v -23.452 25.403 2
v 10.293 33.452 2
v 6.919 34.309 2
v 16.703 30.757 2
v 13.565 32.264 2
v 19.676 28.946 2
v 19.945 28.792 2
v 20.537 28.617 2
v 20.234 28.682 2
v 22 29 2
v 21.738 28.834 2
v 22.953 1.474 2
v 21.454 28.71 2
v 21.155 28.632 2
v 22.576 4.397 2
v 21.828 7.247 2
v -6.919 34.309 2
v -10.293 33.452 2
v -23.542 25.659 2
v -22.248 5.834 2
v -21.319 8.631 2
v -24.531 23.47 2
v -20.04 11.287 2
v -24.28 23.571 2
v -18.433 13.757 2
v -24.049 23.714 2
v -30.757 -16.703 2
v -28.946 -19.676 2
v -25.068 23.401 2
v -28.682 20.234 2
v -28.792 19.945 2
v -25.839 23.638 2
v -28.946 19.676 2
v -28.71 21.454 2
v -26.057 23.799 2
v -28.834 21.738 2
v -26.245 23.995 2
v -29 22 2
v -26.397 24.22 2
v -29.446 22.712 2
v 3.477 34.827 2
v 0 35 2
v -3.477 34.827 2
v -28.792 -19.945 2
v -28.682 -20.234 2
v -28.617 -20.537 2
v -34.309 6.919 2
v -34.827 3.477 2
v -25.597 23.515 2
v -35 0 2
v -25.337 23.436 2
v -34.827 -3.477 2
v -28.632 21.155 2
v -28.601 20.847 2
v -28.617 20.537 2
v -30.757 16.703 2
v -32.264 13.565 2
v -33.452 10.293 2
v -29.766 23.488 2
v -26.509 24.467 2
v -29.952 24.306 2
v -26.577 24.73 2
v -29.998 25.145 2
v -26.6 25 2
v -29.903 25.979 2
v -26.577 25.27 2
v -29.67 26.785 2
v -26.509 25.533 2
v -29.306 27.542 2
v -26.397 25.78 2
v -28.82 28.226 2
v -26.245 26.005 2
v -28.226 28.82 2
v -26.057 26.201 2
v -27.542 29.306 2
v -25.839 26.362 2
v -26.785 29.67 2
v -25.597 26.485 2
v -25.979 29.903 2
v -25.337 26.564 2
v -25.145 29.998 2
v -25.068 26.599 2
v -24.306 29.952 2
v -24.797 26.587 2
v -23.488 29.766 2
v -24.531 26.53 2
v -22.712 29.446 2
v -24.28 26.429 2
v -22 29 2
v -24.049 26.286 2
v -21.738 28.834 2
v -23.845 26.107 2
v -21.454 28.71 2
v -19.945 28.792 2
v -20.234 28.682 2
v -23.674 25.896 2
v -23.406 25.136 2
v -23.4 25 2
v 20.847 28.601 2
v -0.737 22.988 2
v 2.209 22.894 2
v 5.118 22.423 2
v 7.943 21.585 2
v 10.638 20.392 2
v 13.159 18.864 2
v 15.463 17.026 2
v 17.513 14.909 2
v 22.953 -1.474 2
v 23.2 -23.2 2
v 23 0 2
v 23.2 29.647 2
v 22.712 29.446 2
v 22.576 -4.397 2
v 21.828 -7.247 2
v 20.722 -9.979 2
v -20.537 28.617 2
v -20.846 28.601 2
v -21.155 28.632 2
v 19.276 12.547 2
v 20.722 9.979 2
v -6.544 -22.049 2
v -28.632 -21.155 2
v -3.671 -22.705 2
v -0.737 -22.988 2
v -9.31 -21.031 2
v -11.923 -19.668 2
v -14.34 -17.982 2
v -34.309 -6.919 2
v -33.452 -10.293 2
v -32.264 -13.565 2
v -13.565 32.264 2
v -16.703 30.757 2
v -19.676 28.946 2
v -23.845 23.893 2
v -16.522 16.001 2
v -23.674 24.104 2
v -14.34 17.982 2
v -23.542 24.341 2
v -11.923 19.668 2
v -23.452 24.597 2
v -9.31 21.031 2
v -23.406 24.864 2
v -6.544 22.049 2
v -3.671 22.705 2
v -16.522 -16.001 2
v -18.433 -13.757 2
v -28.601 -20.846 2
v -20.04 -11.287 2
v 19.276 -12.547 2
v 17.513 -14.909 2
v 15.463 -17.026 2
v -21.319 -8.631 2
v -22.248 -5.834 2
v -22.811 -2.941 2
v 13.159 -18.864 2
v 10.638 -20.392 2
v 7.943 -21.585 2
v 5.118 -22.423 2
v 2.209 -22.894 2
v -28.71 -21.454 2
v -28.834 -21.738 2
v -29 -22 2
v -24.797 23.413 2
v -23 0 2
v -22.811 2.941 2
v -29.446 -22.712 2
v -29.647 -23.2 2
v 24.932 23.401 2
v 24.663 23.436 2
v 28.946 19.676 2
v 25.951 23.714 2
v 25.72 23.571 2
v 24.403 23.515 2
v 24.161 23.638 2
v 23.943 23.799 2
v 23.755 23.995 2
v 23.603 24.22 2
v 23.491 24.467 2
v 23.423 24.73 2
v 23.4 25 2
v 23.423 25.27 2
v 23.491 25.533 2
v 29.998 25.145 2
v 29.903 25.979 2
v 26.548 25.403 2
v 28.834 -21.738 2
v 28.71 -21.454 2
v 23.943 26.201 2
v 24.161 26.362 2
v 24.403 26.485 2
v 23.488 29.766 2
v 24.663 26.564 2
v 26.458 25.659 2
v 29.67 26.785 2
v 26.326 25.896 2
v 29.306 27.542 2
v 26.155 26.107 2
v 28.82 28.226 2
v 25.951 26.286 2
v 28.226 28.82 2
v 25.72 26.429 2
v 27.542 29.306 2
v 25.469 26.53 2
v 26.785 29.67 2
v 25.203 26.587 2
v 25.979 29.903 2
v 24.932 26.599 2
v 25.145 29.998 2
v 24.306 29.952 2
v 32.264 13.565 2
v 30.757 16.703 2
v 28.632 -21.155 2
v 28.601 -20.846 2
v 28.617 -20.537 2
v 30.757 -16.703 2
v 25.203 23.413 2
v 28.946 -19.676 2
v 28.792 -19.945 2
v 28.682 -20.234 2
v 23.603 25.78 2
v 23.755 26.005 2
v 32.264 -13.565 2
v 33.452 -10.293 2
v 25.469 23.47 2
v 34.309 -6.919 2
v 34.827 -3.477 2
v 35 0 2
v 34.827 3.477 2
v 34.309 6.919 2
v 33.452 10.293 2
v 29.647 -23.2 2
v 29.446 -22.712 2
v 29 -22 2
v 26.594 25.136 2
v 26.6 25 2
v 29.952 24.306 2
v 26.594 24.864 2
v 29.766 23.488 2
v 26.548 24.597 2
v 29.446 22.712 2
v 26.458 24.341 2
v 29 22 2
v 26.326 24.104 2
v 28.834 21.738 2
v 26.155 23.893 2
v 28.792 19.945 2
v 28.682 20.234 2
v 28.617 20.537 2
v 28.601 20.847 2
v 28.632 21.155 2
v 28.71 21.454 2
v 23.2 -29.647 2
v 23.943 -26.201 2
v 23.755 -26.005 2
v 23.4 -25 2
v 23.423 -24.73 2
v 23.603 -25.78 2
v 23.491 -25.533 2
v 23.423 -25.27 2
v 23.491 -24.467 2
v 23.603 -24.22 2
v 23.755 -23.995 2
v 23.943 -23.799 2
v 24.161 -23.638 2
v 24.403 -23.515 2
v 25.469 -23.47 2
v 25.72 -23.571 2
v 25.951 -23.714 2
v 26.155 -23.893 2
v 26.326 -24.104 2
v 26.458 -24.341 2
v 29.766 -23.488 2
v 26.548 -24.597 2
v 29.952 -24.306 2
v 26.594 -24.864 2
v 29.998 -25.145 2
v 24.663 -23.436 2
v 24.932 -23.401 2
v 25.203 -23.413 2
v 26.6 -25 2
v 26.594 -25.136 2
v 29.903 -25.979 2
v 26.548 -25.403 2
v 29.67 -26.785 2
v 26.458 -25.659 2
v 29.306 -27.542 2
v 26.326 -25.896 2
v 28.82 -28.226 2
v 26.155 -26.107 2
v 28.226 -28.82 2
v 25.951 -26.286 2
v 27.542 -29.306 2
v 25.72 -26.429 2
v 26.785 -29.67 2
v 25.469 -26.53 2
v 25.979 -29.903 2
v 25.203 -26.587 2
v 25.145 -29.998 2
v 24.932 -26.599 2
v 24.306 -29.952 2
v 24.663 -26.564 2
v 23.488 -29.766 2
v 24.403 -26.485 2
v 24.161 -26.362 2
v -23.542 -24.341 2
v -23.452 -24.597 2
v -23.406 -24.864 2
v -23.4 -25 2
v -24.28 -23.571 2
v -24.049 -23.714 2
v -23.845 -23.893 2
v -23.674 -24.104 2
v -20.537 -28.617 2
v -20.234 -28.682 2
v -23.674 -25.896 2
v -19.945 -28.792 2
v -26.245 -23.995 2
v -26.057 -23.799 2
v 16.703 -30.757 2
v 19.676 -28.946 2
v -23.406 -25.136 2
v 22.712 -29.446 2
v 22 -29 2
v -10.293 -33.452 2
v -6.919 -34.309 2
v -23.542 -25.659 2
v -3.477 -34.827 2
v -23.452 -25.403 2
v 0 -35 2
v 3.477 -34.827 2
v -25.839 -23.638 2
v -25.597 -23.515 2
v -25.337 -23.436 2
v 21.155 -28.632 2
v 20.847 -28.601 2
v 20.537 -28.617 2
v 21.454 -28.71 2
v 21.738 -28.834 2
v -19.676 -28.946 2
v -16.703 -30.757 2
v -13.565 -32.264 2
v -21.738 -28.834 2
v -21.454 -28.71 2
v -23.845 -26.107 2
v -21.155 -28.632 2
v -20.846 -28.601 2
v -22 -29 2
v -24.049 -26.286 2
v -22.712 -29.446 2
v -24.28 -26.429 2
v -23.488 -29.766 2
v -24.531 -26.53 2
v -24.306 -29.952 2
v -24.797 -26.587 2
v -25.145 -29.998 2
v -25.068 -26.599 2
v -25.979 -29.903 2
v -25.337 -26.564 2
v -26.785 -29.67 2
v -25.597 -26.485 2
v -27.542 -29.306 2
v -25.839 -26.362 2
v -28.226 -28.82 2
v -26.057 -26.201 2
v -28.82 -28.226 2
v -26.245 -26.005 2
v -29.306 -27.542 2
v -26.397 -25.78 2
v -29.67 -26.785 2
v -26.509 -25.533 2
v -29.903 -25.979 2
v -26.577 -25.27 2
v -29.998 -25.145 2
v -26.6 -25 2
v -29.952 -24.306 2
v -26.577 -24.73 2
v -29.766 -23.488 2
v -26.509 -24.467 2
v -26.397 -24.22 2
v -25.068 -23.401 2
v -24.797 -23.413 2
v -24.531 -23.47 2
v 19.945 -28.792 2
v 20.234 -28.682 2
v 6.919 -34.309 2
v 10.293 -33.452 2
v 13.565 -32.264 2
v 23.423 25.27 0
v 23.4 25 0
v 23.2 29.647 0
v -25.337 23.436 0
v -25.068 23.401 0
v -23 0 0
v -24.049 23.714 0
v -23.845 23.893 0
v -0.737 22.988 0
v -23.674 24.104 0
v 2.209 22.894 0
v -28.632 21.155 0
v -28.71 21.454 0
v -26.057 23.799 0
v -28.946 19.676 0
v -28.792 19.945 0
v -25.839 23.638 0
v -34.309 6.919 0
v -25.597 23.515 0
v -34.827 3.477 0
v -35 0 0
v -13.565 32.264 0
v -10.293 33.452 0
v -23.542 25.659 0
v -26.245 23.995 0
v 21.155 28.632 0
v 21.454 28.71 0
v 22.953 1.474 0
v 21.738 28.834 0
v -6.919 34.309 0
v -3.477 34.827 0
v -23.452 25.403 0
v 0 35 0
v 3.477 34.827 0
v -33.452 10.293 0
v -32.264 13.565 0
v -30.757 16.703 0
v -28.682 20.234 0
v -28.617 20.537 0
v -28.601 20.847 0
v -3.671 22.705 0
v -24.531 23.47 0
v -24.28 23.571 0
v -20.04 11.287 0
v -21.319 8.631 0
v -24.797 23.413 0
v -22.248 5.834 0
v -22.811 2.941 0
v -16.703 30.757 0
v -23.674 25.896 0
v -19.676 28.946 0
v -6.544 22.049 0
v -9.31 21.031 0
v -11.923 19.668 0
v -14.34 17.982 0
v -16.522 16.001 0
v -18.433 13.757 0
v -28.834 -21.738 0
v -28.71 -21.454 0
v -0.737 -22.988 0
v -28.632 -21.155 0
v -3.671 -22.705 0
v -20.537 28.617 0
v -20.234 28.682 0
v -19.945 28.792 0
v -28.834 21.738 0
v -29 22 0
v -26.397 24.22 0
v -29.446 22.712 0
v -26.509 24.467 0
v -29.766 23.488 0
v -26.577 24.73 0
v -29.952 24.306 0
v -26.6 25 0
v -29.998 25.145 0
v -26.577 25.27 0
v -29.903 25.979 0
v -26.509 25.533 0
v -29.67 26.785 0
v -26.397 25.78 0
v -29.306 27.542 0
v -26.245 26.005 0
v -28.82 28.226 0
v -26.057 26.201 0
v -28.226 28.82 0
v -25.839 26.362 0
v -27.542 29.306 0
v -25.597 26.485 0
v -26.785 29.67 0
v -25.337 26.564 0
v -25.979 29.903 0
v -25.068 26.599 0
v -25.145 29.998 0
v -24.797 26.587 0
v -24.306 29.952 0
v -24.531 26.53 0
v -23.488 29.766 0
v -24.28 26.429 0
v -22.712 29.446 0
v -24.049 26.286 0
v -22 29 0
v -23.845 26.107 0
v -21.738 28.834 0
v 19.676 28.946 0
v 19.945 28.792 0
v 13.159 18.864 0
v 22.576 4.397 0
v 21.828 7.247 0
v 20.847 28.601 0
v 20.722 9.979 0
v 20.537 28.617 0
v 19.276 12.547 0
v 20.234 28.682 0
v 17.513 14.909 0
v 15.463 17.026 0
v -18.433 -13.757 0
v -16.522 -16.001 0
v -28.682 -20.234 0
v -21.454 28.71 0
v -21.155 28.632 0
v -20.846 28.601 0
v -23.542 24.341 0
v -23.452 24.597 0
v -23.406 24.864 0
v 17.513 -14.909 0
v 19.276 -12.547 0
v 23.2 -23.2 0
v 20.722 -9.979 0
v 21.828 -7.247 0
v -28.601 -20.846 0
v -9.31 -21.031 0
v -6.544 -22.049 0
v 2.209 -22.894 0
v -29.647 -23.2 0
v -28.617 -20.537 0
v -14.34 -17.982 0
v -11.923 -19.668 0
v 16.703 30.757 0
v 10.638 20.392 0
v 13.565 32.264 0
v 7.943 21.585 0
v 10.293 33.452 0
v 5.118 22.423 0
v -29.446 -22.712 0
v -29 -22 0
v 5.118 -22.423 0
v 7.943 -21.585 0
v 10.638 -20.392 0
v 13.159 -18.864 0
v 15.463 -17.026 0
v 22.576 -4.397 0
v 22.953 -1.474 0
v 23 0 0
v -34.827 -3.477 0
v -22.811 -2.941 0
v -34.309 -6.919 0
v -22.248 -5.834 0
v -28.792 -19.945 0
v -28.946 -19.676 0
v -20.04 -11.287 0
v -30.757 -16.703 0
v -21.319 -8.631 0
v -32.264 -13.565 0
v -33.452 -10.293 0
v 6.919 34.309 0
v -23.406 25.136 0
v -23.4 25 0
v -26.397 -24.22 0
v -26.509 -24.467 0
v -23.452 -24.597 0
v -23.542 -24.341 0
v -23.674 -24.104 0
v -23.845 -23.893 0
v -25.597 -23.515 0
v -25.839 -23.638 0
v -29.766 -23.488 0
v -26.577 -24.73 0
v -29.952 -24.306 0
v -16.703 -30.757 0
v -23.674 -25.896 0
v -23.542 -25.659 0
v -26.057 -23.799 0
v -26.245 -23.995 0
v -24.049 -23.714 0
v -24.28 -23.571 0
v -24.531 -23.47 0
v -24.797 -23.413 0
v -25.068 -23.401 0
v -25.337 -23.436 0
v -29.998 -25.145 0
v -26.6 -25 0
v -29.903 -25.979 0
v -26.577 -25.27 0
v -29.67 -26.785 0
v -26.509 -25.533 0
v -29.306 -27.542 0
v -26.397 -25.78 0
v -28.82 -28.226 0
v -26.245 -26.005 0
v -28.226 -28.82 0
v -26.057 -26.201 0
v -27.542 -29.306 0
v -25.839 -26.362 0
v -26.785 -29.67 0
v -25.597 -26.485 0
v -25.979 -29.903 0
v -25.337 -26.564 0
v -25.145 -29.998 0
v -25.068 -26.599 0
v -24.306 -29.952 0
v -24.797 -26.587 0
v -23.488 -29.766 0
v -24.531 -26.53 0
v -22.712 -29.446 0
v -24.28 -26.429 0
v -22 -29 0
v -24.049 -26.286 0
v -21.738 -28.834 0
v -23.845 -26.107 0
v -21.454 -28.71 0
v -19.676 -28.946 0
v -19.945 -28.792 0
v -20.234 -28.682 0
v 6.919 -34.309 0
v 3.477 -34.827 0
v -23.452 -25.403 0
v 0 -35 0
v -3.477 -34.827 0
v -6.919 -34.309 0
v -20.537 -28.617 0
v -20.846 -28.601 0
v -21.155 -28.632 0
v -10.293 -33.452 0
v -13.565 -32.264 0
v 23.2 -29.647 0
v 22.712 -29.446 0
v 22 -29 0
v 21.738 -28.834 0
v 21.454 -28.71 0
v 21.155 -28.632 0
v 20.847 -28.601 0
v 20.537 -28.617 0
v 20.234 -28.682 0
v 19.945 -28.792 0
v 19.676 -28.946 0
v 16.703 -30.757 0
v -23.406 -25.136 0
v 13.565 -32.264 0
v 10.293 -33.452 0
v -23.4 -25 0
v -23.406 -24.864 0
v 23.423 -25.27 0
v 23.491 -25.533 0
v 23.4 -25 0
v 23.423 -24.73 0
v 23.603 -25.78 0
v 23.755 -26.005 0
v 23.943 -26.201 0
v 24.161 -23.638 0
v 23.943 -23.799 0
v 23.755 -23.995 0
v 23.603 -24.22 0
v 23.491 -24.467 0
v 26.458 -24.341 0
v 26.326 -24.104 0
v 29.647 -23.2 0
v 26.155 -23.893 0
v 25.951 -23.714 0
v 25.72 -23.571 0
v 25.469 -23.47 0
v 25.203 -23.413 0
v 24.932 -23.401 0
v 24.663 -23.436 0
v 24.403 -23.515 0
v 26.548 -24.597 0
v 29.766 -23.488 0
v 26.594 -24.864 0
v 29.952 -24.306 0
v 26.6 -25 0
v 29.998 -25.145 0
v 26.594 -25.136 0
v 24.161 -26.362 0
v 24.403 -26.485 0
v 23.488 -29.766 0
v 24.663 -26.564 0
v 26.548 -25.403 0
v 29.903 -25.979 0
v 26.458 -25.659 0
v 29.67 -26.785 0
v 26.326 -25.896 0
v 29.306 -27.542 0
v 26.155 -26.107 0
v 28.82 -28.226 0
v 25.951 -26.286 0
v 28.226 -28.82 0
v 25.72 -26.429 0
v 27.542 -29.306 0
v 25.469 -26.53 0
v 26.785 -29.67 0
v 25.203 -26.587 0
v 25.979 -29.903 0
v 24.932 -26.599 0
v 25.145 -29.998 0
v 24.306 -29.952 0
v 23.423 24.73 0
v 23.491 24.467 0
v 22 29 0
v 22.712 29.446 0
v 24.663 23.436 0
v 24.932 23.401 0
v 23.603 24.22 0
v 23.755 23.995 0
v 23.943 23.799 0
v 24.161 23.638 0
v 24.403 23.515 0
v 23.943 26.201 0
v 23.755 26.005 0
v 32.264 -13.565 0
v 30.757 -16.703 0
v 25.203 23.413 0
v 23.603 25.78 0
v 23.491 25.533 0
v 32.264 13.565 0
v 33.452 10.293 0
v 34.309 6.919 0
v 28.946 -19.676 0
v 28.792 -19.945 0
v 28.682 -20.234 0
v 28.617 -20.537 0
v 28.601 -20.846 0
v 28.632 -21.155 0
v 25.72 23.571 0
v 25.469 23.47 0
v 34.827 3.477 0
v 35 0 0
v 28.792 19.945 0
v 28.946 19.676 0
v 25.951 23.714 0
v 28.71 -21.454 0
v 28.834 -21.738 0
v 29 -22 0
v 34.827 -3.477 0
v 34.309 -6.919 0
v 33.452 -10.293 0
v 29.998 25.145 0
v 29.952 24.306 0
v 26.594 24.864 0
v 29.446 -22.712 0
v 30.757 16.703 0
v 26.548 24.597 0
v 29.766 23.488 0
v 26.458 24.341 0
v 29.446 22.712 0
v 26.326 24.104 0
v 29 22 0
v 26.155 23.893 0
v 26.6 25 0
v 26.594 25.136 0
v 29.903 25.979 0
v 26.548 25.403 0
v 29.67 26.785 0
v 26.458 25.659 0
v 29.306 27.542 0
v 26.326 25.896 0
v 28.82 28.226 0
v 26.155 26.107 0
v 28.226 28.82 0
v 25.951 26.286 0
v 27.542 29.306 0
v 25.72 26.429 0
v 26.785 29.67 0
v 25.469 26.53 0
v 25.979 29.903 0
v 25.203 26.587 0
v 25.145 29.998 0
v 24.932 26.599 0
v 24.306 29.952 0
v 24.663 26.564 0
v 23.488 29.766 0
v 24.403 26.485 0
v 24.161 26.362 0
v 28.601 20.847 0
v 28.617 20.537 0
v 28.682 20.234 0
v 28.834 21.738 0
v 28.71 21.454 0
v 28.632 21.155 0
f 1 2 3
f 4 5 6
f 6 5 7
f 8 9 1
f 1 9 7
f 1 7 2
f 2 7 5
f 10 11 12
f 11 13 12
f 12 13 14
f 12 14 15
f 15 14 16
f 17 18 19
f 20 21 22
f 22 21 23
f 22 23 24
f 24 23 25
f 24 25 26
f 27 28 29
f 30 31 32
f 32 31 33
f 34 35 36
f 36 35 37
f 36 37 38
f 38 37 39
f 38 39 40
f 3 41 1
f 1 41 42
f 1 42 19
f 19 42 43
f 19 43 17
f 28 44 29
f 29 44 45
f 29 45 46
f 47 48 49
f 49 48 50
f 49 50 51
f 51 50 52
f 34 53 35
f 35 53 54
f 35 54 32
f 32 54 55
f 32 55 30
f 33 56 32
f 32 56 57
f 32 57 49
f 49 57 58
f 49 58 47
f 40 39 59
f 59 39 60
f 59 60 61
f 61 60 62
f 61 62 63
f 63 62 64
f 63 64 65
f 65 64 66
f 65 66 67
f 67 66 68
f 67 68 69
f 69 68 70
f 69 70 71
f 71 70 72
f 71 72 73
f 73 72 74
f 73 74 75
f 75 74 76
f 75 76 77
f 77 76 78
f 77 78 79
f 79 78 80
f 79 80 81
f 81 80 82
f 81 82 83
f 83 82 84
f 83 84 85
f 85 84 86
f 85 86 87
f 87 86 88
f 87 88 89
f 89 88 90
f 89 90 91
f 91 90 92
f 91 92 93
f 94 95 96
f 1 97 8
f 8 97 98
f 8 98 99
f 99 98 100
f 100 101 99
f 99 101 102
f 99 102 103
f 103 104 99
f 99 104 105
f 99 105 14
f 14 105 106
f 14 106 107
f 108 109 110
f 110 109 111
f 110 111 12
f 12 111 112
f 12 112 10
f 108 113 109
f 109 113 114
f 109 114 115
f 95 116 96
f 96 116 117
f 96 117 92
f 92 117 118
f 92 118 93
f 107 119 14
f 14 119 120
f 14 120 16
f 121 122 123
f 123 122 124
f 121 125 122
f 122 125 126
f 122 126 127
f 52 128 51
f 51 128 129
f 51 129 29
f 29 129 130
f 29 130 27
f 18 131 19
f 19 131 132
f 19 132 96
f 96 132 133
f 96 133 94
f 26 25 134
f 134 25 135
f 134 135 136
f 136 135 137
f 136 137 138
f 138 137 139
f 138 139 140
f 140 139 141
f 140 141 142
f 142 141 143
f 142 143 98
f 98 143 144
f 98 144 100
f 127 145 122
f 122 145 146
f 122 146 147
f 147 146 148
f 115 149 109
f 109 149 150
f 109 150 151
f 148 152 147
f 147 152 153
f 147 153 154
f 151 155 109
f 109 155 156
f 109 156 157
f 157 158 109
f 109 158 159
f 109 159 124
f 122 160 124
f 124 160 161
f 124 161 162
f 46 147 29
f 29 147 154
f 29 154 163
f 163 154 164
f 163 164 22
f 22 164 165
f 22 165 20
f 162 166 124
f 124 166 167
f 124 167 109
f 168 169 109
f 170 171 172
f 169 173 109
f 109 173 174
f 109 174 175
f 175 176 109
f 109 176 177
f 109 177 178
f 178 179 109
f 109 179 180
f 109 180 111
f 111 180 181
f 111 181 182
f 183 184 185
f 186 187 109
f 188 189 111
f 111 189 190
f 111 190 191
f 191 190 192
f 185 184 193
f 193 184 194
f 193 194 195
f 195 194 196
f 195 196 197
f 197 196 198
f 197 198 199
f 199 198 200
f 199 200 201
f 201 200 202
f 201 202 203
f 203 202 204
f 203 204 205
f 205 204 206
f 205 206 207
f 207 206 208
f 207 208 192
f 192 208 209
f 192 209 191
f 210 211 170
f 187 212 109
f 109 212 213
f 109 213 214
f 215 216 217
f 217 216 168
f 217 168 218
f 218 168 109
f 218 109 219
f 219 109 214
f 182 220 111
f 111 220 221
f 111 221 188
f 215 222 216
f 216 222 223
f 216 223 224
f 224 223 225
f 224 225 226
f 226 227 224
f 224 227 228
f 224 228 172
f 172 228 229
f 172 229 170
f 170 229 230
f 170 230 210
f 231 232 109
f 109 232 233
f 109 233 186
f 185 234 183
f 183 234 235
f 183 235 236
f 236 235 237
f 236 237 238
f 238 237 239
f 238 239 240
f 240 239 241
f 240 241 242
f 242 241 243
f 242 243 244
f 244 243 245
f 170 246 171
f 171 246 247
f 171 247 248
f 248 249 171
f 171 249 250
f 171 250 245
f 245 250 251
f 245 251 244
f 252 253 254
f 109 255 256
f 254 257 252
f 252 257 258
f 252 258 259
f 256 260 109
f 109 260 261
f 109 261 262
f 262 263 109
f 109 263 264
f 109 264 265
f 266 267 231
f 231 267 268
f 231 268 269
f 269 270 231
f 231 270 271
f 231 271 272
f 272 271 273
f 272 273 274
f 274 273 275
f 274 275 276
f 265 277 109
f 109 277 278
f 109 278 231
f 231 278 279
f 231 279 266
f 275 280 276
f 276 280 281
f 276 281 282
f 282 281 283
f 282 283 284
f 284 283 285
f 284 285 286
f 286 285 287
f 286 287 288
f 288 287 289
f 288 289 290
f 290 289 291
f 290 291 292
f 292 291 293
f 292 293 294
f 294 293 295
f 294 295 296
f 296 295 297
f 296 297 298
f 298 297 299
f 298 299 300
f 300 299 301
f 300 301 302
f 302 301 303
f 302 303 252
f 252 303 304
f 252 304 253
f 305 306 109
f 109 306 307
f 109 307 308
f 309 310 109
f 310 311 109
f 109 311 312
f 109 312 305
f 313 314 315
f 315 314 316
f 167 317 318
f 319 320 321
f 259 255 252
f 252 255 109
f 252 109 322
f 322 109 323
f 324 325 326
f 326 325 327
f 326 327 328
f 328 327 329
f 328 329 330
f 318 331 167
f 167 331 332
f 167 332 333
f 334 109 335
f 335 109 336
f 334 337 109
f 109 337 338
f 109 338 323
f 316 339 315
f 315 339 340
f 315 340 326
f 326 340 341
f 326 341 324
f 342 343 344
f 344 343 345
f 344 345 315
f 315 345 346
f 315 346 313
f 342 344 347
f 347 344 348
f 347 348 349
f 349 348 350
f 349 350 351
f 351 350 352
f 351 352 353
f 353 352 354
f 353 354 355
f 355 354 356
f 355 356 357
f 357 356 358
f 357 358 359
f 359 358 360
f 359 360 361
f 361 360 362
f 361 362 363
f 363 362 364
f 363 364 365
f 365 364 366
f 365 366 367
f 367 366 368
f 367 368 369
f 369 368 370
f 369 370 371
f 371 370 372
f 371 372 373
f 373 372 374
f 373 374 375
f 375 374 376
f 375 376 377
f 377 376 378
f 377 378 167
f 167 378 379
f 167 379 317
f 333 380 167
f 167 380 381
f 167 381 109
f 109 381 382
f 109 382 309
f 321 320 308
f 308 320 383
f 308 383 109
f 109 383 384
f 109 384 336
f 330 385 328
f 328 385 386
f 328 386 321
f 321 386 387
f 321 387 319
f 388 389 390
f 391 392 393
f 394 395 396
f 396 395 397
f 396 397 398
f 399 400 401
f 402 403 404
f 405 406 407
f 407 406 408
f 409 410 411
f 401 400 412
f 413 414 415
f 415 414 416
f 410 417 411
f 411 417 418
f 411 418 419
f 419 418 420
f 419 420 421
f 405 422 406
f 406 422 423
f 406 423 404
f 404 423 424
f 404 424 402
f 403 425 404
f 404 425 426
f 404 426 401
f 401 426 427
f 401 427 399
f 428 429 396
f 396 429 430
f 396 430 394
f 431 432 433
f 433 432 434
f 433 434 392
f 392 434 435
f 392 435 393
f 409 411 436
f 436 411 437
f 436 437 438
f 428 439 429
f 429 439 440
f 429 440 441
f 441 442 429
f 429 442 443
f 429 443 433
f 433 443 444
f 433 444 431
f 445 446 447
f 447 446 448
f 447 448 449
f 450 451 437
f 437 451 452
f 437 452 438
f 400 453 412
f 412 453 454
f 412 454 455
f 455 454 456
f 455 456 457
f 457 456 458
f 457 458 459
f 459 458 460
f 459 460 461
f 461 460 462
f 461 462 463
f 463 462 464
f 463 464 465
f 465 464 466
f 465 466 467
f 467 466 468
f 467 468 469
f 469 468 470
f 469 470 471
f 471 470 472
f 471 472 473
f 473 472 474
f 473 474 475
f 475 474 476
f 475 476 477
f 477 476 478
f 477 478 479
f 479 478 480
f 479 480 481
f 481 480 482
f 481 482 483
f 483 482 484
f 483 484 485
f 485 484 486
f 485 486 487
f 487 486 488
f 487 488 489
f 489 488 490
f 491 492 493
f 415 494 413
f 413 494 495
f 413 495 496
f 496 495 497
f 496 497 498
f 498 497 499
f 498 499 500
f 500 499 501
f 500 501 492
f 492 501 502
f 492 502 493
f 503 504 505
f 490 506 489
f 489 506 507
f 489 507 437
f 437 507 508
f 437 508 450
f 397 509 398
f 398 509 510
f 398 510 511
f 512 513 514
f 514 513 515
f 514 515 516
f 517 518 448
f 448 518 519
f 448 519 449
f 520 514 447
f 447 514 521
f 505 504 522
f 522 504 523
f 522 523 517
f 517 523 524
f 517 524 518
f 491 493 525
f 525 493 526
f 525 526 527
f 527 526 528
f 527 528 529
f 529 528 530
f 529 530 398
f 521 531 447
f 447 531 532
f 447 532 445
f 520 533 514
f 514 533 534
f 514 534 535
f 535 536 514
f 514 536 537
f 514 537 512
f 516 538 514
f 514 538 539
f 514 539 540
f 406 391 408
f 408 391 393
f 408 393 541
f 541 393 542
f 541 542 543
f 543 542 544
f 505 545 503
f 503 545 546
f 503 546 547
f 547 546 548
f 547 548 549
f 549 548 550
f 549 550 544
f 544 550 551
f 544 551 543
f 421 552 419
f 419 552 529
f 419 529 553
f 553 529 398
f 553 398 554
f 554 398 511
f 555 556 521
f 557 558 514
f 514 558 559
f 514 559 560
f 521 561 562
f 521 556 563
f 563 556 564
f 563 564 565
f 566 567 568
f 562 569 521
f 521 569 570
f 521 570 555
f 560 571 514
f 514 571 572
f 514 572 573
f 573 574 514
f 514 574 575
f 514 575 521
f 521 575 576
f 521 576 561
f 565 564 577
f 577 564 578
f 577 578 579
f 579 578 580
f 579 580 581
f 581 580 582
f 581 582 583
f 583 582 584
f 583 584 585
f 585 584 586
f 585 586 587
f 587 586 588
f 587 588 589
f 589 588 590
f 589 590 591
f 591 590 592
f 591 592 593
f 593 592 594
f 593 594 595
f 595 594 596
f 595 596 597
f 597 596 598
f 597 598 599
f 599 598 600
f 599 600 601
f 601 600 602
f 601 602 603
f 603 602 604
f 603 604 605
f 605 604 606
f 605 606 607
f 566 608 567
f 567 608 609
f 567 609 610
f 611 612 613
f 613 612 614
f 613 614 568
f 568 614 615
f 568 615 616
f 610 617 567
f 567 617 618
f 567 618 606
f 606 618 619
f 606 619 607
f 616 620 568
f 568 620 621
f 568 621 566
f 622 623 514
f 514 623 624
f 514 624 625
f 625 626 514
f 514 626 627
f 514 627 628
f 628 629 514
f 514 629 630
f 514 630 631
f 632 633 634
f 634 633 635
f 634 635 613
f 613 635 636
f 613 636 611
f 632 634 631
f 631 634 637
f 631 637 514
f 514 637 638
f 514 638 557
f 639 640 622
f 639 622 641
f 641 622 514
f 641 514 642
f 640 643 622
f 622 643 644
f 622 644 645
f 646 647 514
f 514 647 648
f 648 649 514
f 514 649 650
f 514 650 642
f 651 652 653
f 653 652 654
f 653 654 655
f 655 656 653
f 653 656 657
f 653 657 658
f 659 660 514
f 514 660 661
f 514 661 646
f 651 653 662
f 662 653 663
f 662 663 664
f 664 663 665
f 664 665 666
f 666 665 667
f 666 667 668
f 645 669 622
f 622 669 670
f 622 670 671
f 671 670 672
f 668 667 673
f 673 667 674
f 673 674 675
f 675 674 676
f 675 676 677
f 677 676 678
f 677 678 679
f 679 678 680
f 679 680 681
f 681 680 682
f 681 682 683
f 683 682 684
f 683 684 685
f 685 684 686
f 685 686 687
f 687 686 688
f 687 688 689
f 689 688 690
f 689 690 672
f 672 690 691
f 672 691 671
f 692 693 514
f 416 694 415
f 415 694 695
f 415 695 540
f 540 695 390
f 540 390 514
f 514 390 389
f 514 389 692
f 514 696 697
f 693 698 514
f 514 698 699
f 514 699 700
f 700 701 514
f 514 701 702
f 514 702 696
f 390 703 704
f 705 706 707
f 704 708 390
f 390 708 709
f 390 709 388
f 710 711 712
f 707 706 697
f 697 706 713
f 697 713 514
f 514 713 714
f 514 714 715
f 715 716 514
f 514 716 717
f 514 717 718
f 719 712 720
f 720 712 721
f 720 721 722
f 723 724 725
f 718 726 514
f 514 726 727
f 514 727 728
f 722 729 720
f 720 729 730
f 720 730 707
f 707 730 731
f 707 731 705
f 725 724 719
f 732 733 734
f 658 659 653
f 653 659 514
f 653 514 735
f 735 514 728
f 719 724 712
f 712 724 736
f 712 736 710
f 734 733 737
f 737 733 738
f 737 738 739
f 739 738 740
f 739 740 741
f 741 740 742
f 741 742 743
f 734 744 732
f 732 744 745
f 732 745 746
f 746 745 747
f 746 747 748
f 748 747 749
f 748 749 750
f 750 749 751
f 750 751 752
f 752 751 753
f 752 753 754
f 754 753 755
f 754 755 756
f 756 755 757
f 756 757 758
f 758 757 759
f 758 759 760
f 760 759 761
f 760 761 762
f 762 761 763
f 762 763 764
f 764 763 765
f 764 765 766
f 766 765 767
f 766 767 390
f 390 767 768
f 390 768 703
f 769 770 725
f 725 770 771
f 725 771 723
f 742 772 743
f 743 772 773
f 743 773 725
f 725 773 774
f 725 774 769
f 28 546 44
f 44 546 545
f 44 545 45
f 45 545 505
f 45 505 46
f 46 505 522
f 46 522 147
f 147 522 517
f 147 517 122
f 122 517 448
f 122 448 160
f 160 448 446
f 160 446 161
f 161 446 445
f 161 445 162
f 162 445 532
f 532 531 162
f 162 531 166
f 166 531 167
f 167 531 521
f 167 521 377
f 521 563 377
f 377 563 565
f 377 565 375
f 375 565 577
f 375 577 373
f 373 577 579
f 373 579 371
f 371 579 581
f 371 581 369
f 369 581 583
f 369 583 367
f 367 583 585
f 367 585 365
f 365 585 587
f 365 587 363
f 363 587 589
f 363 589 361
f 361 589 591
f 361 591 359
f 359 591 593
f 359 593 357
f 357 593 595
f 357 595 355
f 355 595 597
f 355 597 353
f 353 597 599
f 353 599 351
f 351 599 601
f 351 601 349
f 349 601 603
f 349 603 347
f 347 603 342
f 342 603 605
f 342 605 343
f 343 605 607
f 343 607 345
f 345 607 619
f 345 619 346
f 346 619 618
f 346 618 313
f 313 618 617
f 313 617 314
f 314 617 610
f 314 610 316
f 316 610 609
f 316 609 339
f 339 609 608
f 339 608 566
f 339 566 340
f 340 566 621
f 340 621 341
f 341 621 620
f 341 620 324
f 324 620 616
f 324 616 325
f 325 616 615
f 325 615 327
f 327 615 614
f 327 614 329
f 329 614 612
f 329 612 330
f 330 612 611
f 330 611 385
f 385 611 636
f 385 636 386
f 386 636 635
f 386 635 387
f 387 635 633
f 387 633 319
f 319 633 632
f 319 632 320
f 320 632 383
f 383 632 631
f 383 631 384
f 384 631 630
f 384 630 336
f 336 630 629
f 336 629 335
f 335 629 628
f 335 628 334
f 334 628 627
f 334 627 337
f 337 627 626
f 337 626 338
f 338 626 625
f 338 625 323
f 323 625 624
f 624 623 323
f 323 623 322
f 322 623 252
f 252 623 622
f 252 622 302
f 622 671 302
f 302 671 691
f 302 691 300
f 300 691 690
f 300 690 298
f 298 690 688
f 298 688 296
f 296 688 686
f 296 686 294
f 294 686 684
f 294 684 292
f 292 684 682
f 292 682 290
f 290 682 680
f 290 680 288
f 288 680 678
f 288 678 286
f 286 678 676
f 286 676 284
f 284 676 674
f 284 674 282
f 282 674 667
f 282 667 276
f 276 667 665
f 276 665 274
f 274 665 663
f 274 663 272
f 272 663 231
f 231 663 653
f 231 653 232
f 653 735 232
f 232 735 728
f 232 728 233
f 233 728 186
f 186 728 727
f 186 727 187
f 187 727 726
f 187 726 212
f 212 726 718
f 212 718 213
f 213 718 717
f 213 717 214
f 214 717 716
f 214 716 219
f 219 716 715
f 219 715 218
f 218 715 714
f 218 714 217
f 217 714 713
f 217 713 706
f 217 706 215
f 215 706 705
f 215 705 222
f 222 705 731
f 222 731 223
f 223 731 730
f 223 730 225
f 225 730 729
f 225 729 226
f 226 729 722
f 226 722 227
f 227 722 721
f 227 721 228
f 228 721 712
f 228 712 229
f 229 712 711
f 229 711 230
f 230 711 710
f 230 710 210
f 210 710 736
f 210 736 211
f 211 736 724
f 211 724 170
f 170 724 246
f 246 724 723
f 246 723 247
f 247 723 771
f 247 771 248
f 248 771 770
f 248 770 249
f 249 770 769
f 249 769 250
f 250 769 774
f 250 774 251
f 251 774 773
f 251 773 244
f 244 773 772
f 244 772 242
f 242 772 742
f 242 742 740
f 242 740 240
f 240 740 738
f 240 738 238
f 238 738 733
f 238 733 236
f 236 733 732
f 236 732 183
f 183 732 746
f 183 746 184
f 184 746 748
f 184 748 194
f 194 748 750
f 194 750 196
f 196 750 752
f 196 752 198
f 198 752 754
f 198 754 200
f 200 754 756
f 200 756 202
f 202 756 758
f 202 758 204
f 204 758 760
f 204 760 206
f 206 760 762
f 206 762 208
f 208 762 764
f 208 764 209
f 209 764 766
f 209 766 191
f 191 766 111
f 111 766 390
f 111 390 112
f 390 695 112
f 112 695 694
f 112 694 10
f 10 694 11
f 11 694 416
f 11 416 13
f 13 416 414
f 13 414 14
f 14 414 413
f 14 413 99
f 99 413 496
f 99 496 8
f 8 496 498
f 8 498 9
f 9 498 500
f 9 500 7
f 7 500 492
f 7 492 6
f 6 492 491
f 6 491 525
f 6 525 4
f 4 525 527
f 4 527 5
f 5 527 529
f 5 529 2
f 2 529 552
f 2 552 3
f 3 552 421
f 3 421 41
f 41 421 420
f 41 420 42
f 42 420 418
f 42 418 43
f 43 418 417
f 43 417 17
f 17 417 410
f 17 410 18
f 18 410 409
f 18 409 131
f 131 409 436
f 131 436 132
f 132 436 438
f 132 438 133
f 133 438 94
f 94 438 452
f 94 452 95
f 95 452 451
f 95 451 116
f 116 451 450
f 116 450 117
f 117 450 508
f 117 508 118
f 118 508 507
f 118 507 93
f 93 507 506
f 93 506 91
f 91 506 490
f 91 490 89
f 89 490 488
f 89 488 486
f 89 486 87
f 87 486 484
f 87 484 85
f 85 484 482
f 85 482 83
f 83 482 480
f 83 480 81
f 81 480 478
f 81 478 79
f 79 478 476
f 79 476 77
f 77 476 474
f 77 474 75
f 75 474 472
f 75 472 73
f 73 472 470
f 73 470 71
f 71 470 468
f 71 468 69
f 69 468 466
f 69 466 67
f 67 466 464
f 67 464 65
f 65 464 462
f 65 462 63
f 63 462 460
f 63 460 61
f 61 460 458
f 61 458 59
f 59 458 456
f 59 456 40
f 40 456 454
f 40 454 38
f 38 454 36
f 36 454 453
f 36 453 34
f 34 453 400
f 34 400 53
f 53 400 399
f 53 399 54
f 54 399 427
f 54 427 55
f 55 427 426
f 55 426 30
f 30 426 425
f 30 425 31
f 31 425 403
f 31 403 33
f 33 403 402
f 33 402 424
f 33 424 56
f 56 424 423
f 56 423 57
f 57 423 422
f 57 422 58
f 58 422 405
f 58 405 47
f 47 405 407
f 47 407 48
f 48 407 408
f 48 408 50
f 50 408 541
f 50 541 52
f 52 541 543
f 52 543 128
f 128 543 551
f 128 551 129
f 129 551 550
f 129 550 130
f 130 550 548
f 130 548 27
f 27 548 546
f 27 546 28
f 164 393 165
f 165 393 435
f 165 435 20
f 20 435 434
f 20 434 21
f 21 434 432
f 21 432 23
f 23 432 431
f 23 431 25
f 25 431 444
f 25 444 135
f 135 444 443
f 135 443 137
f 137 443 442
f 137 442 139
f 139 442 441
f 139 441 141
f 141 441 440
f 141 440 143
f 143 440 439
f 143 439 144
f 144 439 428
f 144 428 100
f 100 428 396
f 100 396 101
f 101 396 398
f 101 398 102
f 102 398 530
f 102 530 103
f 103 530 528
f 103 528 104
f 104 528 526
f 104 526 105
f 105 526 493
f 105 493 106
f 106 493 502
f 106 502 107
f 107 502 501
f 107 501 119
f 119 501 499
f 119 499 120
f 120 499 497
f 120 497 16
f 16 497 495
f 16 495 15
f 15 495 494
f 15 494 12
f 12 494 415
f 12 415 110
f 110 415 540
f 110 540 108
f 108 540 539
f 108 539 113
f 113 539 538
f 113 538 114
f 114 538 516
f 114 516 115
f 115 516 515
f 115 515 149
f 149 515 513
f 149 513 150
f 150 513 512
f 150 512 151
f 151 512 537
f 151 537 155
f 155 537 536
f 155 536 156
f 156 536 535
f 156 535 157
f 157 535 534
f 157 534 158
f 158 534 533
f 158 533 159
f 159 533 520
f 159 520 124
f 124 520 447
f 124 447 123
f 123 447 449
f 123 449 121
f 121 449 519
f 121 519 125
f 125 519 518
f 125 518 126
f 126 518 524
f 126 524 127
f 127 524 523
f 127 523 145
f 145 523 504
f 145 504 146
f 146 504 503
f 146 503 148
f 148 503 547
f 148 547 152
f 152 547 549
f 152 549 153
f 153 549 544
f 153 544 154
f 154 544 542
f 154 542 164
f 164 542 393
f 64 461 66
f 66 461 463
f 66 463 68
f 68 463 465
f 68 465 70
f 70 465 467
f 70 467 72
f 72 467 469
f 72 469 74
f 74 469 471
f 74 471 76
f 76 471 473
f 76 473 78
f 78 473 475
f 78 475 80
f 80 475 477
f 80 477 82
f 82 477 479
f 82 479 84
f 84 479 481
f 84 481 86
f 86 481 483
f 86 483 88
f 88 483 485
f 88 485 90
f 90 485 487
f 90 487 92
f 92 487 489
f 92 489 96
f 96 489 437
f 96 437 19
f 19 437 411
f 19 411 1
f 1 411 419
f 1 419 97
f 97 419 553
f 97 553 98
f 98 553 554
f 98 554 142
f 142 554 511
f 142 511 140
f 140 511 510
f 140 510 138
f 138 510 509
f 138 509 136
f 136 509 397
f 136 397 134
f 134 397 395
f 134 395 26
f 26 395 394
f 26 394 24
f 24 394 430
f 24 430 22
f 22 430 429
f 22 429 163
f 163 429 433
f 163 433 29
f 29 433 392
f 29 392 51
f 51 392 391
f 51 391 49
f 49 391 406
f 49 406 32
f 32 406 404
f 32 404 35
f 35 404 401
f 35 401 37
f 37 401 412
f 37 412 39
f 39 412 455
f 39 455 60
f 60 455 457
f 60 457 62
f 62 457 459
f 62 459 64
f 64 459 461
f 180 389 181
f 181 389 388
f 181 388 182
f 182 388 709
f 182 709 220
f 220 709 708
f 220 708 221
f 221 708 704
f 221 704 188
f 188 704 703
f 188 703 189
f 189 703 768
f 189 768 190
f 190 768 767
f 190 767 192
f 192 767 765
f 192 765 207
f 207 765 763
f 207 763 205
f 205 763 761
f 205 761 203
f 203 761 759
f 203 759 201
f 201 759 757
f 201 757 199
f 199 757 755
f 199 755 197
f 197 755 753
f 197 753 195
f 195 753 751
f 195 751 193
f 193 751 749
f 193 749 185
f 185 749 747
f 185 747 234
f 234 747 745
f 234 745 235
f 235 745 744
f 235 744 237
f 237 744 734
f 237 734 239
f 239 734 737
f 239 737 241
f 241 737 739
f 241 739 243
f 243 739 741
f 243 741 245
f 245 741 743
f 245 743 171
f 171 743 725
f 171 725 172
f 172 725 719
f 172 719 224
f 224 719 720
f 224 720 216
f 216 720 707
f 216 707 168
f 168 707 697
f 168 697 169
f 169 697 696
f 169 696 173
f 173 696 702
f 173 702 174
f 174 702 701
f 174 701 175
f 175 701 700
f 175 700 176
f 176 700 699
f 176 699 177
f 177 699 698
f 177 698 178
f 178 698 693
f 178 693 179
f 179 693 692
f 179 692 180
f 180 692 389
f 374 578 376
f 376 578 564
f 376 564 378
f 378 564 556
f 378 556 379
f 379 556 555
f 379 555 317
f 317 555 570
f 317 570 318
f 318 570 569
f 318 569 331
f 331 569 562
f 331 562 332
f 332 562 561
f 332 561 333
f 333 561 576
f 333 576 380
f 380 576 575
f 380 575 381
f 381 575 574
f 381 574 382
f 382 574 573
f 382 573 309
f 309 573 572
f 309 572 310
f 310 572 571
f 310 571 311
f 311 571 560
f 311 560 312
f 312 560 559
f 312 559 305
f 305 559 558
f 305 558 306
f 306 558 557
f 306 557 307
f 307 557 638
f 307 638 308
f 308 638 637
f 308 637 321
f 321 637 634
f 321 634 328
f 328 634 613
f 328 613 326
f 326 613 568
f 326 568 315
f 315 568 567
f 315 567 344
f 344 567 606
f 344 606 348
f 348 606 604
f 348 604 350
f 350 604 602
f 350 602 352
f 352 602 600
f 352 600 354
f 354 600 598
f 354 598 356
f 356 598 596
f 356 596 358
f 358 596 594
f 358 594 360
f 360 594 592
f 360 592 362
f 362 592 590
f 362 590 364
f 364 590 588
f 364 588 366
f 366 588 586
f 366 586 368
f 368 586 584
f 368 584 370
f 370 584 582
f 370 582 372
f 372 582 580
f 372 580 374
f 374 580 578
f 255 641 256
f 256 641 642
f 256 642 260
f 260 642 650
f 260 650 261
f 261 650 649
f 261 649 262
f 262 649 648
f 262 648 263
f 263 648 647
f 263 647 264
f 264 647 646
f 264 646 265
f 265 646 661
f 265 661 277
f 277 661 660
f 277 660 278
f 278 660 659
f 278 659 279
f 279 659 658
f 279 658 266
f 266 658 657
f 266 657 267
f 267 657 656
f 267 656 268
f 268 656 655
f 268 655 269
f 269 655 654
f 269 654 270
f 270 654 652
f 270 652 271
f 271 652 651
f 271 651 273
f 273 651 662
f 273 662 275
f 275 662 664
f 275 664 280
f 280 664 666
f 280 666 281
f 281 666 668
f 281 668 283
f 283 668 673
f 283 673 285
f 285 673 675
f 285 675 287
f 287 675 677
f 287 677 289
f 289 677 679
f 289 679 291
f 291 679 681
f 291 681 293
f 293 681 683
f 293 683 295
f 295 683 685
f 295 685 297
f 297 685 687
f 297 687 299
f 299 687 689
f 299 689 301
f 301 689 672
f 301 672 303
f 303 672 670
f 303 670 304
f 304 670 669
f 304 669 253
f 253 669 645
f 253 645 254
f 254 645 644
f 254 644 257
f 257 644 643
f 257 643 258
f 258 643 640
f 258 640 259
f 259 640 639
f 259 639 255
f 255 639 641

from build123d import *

# Parameters (mm, degrees)
SKETCH1_R           = 23
SKETCH1_R_2         = 1.6
BOSS_EXTRUDE1_DEPTH = 2


with BuildPart() as part:
    # Sketch1 → Boss-Extrude1 (new body)
    with BuildSketch(Plane.XY):
        with BuildLine():
            ThreePointArc((-28.945945946, 19.675675676), (-35, 0), (-28.945945946, -19.675675676))
            ThreePointArc((-28.945945946, -19.675675676), (-28.600540614, -20.846499055), (-29, -22))
            ThreePointArc((-29, -22), (-28.535533906, -28.535533906), (-22, -29))
            ThreePointArc((-22, -29), (-20.846499055, -28.600540614), (-19.675675676, -28.945945946))
            ThreePointArc((-19.675675676, -28.945945946), (0, -35), (19.675675676, -28.945945946))
            ThreePointArc((19.675675676, -28.945945946), (20.846499055, -28.600540614), (22, -29))
            ThreePointArc((22, -29), (28.535533906, -28.535533906), (29, -22))
            ThreePointArc((29, -22), (28.600540614, -20.846499055), (28.945945946, -19.675675676))
            ThreePointArc((28.945945946, -19.675675676), (35, 0), (28.945945946, 19.675675676))
            ThreePointArc((28.945945946, 19.675675676), (28.600540614, 20.846499055), (29, 22))
            ThreePointArc((29, 22), (28.535533906, 28.535533906), (22, 29))
            ThreePointArc((22, 29), (20.846499055, 28.600540614), (19.675675676, 28.945945946))
            ThreePointArc((19.675675676, 28.945945946), (0, 35), (-19.675675676, 28.945945946))
            ThreePointArc((-19.675675676, 28.945945946), (-20.846499055, 28.600540614), (-22, 29))
            ThreePointArc((-22, 29), (-28.535533906, 28.535533906), (-29, 22))
            ThreePointArc((-29, 22), (-28.600540614, 20.846499055), (-28.945945946, 19.675675676))
        make_face()
        Circle(SKETCH1_R, mode=Mode.SUBTRACT)
        with Locations((-25, 25)):
            Circle(SKETCH1_R_2, mode=Mode.SUBTRACT)
        with Locations((25, 25)):
            Circle(SKETCH1_R_2, mode=Mode.SUBTRACT)
        with Locations((-25, -25)):
            Circle(SKETCH1_R_2, mode=Mode.SUBTRACT)
        with Locations((25, -25)):
            Circle(SKETCH1_R_2, mode=Mode.SUBTRACT)
    extrude(amount=BOSS_EXTRUDE1_DEPTH)


solid = part.part
